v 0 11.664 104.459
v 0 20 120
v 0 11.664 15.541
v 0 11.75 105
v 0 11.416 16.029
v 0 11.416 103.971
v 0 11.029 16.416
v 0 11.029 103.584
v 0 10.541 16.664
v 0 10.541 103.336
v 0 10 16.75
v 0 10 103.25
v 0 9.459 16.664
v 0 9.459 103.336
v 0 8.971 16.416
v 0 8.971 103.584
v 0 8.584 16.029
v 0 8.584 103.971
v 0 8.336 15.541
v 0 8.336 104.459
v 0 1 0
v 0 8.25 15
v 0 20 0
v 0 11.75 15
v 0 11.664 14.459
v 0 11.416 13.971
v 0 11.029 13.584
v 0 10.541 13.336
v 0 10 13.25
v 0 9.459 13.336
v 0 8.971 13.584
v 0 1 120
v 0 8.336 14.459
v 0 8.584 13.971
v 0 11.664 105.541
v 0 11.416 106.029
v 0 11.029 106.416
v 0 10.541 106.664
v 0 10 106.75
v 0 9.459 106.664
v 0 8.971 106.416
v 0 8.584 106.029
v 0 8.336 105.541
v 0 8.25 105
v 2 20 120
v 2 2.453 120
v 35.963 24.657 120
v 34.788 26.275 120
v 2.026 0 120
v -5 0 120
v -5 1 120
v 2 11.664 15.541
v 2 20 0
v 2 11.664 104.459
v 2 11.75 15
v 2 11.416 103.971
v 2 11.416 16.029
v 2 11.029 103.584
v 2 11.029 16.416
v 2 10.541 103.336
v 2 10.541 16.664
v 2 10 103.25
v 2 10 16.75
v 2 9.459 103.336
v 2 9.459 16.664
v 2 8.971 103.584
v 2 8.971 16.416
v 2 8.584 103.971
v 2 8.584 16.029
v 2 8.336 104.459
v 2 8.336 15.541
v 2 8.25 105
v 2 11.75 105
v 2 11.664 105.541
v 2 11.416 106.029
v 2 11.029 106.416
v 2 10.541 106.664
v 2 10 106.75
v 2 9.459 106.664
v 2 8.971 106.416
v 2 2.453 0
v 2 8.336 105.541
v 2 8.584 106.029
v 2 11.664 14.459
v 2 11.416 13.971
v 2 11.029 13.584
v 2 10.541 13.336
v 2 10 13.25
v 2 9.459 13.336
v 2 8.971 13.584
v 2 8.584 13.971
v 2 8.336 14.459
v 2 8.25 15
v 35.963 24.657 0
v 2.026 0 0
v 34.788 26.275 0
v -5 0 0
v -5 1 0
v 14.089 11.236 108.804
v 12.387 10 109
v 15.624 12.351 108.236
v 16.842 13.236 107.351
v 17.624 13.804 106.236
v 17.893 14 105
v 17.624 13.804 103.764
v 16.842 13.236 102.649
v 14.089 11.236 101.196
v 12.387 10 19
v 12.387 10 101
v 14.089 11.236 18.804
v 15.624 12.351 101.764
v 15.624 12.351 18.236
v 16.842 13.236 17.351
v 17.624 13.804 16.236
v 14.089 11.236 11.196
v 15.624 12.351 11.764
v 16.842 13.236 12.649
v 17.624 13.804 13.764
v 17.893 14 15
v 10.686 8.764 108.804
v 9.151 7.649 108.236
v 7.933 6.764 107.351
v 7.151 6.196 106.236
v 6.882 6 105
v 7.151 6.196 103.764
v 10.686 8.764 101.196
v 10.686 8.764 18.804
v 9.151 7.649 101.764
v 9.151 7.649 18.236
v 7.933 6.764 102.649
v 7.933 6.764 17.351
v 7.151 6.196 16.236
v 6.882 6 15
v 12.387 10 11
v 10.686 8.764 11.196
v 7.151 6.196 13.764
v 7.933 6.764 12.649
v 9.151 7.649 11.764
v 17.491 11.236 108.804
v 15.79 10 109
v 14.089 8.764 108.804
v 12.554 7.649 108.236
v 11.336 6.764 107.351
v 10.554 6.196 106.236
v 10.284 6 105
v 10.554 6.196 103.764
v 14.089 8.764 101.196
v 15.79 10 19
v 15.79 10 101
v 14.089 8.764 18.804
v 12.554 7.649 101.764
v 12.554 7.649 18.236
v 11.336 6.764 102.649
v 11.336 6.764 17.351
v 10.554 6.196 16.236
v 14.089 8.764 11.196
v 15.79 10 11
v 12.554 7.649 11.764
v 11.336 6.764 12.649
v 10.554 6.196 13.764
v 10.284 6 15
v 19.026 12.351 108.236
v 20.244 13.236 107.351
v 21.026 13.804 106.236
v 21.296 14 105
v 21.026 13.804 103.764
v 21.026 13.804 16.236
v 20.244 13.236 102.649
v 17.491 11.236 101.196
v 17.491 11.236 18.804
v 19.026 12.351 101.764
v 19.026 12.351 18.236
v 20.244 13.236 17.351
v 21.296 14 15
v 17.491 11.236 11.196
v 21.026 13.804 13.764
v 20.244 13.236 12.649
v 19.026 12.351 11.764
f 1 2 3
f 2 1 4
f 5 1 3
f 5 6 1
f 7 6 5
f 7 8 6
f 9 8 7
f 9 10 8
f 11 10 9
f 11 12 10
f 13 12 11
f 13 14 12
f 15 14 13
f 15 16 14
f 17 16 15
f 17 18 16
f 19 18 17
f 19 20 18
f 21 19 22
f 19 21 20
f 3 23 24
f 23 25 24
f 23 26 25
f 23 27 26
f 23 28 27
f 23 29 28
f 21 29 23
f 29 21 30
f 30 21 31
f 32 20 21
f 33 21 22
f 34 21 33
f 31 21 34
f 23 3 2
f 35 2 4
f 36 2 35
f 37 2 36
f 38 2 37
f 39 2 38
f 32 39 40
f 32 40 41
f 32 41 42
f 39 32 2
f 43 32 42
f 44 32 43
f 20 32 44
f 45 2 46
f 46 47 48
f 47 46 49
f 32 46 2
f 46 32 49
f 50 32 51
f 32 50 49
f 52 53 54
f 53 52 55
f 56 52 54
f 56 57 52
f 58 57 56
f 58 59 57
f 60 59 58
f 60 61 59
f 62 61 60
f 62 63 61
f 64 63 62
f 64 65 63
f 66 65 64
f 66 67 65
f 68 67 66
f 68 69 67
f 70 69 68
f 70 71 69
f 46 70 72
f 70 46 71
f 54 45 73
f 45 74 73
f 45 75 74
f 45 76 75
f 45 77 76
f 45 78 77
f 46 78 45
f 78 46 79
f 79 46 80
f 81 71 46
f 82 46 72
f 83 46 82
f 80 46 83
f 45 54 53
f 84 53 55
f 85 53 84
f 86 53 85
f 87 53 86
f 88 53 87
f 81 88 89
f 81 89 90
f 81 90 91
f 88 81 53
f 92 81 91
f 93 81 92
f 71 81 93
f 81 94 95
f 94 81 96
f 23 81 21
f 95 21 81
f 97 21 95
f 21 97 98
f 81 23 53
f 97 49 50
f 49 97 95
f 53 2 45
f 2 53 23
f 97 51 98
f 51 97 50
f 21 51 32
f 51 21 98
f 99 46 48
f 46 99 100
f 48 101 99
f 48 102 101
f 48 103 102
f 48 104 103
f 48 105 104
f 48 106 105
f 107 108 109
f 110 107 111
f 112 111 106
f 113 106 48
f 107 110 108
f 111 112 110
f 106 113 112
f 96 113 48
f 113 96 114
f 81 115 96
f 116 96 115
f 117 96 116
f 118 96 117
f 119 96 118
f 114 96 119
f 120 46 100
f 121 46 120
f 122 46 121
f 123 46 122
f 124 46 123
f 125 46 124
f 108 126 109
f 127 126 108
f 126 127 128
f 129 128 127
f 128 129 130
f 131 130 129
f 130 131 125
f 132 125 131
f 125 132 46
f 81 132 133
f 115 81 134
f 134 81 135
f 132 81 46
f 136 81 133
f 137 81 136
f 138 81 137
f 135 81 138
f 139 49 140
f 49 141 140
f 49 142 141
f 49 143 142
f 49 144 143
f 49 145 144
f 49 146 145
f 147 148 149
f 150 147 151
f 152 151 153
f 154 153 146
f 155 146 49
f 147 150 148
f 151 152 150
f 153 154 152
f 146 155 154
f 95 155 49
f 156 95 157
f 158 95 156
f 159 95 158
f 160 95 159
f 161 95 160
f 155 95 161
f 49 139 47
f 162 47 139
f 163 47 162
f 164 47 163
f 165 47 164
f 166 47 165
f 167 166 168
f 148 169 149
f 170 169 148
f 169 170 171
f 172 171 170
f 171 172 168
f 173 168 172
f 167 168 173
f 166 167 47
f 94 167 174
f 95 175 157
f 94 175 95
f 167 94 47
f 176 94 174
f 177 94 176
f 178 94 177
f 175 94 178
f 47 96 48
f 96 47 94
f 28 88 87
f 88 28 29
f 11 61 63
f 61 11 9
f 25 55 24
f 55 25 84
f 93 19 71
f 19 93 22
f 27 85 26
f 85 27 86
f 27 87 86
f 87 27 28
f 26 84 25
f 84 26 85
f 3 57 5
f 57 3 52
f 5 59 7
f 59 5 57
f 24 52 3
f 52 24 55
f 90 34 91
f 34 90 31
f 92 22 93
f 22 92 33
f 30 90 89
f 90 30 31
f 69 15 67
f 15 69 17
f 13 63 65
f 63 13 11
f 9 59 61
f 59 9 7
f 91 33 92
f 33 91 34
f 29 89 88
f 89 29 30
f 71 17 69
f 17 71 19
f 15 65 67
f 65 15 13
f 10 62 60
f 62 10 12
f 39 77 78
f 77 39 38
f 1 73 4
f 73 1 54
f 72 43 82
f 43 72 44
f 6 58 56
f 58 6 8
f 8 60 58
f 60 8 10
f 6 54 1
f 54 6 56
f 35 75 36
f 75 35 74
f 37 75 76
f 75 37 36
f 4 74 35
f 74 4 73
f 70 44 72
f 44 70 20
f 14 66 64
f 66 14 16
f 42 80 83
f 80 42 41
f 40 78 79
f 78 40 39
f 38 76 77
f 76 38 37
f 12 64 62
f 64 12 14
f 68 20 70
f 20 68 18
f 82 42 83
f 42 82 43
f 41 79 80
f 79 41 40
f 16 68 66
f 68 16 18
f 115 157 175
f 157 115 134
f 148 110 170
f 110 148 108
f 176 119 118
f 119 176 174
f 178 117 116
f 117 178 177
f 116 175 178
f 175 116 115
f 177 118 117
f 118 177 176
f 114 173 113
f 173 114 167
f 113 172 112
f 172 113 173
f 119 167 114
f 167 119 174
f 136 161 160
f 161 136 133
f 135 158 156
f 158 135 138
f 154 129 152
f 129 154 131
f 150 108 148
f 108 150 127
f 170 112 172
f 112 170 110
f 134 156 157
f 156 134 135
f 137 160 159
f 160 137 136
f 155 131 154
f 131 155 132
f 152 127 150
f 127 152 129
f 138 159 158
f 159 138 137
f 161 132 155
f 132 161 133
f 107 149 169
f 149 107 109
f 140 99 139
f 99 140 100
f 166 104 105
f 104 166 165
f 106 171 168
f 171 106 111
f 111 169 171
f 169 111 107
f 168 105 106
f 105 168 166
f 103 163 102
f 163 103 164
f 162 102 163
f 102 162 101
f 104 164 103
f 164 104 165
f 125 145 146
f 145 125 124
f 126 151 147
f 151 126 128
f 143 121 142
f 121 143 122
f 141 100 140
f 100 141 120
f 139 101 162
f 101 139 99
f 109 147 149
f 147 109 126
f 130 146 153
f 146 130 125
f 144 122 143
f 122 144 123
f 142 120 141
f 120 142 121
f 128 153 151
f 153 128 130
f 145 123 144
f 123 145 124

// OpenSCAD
t = 25;
h = 60 - 25;


difference()
{
    union() {
        cube([2, 20, 120]);
        translate([-5, 0,0]) cube([5, 1, 120]);
        translate([0,1,0]) rotate([0,0,-54])
            cube([2, 43, 120]);
    }
    translate([-5,-5,-5])
        cube([10,5,130]);
    
    translate([0,10,0]) {
        rotate([0,90,0]) {
            translate([-15, 0, -1]) cylinder(d=3.5, h=5, $fn=20);
            translate([-120+15, 0, -1]) cylinder(d=3.5, h=5, $fn=20);

            translate([-15, 0, 5]) cylinder(d=8, h=20, $fn=20);
            translate([-120+15, 0, 5]) cylinder(d=8, h=20, $fn=20);
        }
    }
}
